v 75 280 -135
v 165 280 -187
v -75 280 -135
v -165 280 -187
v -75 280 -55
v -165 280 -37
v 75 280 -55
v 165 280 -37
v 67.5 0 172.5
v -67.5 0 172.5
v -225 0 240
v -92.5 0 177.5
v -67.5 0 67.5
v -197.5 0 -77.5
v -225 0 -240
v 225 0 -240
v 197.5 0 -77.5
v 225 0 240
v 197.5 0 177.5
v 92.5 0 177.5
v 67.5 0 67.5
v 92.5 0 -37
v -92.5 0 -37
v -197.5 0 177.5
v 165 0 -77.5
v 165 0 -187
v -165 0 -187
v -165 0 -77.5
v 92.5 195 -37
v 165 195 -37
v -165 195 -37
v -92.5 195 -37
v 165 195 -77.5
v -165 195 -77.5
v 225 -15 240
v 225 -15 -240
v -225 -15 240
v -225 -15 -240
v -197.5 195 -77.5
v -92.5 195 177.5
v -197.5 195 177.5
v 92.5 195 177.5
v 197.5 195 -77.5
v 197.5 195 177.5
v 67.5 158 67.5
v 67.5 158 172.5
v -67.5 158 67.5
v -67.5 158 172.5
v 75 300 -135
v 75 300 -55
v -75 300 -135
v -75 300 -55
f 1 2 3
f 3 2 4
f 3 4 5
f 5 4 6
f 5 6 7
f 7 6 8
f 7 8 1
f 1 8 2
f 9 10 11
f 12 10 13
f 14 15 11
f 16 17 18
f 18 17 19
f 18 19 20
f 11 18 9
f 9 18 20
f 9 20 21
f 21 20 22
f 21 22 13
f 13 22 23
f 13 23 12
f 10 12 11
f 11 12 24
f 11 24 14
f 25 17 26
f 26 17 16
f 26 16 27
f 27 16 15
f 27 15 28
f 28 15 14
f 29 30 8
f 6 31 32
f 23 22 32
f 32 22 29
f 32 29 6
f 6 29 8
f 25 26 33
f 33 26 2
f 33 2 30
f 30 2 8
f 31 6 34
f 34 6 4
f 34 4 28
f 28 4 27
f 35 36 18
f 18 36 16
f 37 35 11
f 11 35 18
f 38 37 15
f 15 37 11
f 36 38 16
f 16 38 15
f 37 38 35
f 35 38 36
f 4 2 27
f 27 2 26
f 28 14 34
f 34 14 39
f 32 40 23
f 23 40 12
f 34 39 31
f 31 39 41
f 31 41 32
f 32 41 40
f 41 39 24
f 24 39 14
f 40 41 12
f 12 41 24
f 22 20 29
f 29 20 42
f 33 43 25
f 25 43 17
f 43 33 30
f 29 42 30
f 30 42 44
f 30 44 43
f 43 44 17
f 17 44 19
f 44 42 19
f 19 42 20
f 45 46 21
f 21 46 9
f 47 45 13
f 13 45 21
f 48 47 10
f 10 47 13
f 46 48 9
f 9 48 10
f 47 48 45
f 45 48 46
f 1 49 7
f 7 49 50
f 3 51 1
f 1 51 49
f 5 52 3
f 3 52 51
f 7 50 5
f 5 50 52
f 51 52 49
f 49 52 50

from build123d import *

# Parameters (mm, degrees)
SKETCH_1_W      = 450
SKETCH_1_H      = 480
EXTRUDE_1_DEPTH = 15
SKETCH_2_W      = 330
SKETCH_2_H      = 150
EXTRUDE_2_DEPTH = 280
SKETCH_3_W      = 105
SKETCH_3_H      = 255
EXTRUDE_3_DEPTH = 195
SKETCH_4_W      = 105
SKETCH_4_H      = 255
EXTRUDE_4_DEPTH = 195
SKETCH_5_W      = 135
SKETCH_5_H      = 105
EXTRUDE_5_DEPTH = 158
SKETCH_6_W      = 150
SKETCH_6_H      = 80
EXTRUDE_6_DEPTH = 300


with BuildPart() as part:
    # 草图1 → 凸台-拉伸1 (new body)
    with BuildSketch(Plane(origin=(0, 0, 0), x_dir=(1, 0, 0), z_dir=(0, 1, 0))):
        Rectangle(SKETCH_1_W, SKETCH_1_H)
    extrude(amount=-EXTRUDE_1_DEPTH)

    # 草图2 → 凸台-拉伸2 (add)
    with BuildSketch(Plane(origin=(0, 0, 0), x_dir=(1, 0, 0), z_dir=(0, 1, 0))):
        with Locations((0, 112)):
            Rectangle(SKETCH_2_W, SKETCH_2_H)
    extrude(amount=EXTRUDE_2_DEPTH)

    # 草图3 → 凸台-拉伸3 (add)
    with BuildSketch(Plane(origin=(0, 0, 0), x_dir=(1, 0, 0), z_dir=(0, 1, 0))):
        with Locations((-145, -50)):
            Rectangle(SKETCH_3_W, SKETCH_3_H)
    extrude(amount=EXTRUDE_3_DEPTH)

    # 草图4 → 凸台-拉伸4 (add)
    with BuildSketch(Plane(origin=(0, 0, 0), x_dir=(1, 0, 0), z_dir=(0, 1, 0))):
        with Locations((145, -50)):
            Rectangle(SKETCH_4_W, SKETCH_4_H)
    extrude(amount=EXTRUDE_4_DEPTH)

    # 草图5 → 凸台-拉伸5 (add)
    with BuildSketch(Plane(origin=(0, 0, 0), x_dir=(1, 0, 0), z_dir=(0, 1, 0))):
        with Locations((0, -120)):
            Rectangle(SKETCH_5_W, SKETCH_5_H)
    extrude(amount=EXTRUDE_5_DEPTH)

    # 草图6 → 凸台-拉伸6 (add)
    with BuildSketch(Plane(origin=(0, 0, 0), x_dir=(1, 0, 0), z_dir=(0, 1, 0))):
        with Locations((0, 95)):
            Rectangle(SKETCH_6_W, SKETCH_6_H)
    extrude(amount=EXTRUDE_6_DEPTH)


solid = part.part
